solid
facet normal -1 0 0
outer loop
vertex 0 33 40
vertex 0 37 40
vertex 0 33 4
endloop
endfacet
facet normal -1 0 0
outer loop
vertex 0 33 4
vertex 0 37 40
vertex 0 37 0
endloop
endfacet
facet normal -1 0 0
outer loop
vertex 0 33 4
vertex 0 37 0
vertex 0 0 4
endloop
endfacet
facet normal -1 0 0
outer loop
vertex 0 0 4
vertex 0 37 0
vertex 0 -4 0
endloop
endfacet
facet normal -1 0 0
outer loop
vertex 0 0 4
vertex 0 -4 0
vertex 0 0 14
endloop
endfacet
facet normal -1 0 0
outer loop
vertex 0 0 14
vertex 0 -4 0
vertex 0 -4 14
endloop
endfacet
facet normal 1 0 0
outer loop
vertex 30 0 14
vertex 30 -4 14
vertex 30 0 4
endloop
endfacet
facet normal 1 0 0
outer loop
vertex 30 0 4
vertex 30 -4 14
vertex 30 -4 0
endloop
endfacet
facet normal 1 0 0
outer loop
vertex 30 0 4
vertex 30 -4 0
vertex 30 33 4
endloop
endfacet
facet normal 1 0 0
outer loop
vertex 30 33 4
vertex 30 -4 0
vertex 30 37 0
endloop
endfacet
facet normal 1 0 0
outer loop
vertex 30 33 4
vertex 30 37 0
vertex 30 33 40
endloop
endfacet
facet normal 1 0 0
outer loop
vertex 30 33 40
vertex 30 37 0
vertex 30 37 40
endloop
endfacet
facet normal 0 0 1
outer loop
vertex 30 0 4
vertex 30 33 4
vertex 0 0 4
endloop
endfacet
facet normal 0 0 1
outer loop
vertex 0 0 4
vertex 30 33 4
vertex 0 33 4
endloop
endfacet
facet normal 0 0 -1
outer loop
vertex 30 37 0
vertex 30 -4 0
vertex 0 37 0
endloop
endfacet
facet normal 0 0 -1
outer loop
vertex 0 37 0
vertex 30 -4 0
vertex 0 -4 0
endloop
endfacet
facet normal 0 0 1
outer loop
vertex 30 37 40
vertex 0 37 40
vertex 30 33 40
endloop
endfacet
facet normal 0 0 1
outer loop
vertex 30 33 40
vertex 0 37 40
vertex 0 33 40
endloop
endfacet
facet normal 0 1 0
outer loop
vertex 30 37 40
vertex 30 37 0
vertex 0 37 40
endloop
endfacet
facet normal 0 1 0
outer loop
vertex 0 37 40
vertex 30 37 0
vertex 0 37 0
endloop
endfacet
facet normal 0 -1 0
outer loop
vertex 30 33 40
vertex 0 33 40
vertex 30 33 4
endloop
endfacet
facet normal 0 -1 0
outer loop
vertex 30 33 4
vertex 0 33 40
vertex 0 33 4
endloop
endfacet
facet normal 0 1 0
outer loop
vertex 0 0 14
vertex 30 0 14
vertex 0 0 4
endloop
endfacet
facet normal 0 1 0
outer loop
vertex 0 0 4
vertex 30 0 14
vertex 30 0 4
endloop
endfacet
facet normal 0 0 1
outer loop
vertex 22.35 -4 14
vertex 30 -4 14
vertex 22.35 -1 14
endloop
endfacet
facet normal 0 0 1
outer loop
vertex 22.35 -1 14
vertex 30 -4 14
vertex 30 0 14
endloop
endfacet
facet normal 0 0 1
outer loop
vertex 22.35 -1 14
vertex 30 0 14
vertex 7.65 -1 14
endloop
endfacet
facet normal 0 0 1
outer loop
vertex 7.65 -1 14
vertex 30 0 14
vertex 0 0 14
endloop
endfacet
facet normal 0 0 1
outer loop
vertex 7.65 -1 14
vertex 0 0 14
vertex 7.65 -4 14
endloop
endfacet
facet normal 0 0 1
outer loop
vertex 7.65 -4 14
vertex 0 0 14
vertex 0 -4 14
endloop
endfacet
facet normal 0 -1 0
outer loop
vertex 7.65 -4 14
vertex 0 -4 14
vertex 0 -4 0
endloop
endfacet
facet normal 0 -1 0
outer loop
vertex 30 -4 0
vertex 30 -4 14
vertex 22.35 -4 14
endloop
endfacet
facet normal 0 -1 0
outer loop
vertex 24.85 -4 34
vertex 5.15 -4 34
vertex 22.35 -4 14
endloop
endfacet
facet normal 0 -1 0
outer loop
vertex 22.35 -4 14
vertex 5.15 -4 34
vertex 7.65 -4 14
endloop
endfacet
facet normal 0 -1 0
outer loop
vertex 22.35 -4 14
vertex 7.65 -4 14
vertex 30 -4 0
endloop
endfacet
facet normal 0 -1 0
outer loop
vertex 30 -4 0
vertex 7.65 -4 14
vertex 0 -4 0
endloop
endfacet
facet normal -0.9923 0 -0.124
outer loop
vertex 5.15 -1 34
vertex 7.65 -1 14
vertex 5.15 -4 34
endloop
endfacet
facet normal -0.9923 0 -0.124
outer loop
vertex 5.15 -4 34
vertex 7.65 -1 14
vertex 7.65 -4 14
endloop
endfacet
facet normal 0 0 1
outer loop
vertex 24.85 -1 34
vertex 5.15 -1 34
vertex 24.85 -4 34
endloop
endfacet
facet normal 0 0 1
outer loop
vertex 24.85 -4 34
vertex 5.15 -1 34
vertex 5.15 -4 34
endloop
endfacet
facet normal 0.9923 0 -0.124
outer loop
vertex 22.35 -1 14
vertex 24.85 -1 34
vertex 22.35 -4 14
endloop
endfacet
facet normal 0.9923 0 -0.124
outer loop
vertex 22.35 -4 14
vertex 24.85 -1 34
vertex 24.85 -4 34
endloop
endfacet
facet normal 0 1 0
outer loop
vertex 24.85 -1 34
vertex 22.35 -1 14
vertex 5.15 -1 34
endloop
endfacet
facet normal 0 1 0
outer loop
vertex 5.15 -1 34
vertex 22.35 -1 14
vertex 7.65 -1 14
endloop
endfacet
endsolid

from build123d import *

# Parameters (mm, degrees)
SKETCH1_W           = 30
SKETCH1_H           = 33
BOSS_EXTRUDE1_DEPTH = 4
SKETCH2_W           = 30
SKETCH2_H           = 40
BOSS_EXTRUDE2_DEPTH = 4
SKETCH4_W           = 30
SKETCH4_H           = 14
BOSS_EXTRUDE3_DEPTH = 4
BOSS_EXTRUDE4_DEPTH = 3


with BuildPart() as part:
    # Sketch1 → Boss-Extrude1 (new body)
    with BuildSketch(Plane.XY):
        with Locations((15, 16.5)):
            Rectangle(SKETCH1_W, SKETCH1_H)
    extrude(amount=BOSS_EXTRUDE1_DEPTH)

    # Sketch2 → Boss-Extrude2 (add)
    with BuildSketch(Plane(origin=(0, 33, 0), x_dir=(1, 0, 0), z_dir=(0, 1, 0))):
        with Locations((15, -20)):
            Rectangle(SKETCH2_W, SKETCH2_H)
    extrude(amount=BOSS_EXTRUDE2_DEPTH)

    # Sketch4 → Boss-Extrude3 (add)
    with BuildSketch(Plane.XZ):
        with Locations((15, 7)):
            Rectangle(SKETCH4_W, SKETCH4_H)
    extrude(amount=BOSS_EXTRUDE3_DEPTH)

    # Sketch3 → Boss-Extrude4 (add)
    with BuildSketch(Plane.XZ.offset(4)):
        Polygon((7.65, 14), (22.35, 14), (24.85, 34), (5.15, 34), align=None)
    extrude(amount=-BOSS_EXTRUDE4_DEPTH)


solid = part.part
